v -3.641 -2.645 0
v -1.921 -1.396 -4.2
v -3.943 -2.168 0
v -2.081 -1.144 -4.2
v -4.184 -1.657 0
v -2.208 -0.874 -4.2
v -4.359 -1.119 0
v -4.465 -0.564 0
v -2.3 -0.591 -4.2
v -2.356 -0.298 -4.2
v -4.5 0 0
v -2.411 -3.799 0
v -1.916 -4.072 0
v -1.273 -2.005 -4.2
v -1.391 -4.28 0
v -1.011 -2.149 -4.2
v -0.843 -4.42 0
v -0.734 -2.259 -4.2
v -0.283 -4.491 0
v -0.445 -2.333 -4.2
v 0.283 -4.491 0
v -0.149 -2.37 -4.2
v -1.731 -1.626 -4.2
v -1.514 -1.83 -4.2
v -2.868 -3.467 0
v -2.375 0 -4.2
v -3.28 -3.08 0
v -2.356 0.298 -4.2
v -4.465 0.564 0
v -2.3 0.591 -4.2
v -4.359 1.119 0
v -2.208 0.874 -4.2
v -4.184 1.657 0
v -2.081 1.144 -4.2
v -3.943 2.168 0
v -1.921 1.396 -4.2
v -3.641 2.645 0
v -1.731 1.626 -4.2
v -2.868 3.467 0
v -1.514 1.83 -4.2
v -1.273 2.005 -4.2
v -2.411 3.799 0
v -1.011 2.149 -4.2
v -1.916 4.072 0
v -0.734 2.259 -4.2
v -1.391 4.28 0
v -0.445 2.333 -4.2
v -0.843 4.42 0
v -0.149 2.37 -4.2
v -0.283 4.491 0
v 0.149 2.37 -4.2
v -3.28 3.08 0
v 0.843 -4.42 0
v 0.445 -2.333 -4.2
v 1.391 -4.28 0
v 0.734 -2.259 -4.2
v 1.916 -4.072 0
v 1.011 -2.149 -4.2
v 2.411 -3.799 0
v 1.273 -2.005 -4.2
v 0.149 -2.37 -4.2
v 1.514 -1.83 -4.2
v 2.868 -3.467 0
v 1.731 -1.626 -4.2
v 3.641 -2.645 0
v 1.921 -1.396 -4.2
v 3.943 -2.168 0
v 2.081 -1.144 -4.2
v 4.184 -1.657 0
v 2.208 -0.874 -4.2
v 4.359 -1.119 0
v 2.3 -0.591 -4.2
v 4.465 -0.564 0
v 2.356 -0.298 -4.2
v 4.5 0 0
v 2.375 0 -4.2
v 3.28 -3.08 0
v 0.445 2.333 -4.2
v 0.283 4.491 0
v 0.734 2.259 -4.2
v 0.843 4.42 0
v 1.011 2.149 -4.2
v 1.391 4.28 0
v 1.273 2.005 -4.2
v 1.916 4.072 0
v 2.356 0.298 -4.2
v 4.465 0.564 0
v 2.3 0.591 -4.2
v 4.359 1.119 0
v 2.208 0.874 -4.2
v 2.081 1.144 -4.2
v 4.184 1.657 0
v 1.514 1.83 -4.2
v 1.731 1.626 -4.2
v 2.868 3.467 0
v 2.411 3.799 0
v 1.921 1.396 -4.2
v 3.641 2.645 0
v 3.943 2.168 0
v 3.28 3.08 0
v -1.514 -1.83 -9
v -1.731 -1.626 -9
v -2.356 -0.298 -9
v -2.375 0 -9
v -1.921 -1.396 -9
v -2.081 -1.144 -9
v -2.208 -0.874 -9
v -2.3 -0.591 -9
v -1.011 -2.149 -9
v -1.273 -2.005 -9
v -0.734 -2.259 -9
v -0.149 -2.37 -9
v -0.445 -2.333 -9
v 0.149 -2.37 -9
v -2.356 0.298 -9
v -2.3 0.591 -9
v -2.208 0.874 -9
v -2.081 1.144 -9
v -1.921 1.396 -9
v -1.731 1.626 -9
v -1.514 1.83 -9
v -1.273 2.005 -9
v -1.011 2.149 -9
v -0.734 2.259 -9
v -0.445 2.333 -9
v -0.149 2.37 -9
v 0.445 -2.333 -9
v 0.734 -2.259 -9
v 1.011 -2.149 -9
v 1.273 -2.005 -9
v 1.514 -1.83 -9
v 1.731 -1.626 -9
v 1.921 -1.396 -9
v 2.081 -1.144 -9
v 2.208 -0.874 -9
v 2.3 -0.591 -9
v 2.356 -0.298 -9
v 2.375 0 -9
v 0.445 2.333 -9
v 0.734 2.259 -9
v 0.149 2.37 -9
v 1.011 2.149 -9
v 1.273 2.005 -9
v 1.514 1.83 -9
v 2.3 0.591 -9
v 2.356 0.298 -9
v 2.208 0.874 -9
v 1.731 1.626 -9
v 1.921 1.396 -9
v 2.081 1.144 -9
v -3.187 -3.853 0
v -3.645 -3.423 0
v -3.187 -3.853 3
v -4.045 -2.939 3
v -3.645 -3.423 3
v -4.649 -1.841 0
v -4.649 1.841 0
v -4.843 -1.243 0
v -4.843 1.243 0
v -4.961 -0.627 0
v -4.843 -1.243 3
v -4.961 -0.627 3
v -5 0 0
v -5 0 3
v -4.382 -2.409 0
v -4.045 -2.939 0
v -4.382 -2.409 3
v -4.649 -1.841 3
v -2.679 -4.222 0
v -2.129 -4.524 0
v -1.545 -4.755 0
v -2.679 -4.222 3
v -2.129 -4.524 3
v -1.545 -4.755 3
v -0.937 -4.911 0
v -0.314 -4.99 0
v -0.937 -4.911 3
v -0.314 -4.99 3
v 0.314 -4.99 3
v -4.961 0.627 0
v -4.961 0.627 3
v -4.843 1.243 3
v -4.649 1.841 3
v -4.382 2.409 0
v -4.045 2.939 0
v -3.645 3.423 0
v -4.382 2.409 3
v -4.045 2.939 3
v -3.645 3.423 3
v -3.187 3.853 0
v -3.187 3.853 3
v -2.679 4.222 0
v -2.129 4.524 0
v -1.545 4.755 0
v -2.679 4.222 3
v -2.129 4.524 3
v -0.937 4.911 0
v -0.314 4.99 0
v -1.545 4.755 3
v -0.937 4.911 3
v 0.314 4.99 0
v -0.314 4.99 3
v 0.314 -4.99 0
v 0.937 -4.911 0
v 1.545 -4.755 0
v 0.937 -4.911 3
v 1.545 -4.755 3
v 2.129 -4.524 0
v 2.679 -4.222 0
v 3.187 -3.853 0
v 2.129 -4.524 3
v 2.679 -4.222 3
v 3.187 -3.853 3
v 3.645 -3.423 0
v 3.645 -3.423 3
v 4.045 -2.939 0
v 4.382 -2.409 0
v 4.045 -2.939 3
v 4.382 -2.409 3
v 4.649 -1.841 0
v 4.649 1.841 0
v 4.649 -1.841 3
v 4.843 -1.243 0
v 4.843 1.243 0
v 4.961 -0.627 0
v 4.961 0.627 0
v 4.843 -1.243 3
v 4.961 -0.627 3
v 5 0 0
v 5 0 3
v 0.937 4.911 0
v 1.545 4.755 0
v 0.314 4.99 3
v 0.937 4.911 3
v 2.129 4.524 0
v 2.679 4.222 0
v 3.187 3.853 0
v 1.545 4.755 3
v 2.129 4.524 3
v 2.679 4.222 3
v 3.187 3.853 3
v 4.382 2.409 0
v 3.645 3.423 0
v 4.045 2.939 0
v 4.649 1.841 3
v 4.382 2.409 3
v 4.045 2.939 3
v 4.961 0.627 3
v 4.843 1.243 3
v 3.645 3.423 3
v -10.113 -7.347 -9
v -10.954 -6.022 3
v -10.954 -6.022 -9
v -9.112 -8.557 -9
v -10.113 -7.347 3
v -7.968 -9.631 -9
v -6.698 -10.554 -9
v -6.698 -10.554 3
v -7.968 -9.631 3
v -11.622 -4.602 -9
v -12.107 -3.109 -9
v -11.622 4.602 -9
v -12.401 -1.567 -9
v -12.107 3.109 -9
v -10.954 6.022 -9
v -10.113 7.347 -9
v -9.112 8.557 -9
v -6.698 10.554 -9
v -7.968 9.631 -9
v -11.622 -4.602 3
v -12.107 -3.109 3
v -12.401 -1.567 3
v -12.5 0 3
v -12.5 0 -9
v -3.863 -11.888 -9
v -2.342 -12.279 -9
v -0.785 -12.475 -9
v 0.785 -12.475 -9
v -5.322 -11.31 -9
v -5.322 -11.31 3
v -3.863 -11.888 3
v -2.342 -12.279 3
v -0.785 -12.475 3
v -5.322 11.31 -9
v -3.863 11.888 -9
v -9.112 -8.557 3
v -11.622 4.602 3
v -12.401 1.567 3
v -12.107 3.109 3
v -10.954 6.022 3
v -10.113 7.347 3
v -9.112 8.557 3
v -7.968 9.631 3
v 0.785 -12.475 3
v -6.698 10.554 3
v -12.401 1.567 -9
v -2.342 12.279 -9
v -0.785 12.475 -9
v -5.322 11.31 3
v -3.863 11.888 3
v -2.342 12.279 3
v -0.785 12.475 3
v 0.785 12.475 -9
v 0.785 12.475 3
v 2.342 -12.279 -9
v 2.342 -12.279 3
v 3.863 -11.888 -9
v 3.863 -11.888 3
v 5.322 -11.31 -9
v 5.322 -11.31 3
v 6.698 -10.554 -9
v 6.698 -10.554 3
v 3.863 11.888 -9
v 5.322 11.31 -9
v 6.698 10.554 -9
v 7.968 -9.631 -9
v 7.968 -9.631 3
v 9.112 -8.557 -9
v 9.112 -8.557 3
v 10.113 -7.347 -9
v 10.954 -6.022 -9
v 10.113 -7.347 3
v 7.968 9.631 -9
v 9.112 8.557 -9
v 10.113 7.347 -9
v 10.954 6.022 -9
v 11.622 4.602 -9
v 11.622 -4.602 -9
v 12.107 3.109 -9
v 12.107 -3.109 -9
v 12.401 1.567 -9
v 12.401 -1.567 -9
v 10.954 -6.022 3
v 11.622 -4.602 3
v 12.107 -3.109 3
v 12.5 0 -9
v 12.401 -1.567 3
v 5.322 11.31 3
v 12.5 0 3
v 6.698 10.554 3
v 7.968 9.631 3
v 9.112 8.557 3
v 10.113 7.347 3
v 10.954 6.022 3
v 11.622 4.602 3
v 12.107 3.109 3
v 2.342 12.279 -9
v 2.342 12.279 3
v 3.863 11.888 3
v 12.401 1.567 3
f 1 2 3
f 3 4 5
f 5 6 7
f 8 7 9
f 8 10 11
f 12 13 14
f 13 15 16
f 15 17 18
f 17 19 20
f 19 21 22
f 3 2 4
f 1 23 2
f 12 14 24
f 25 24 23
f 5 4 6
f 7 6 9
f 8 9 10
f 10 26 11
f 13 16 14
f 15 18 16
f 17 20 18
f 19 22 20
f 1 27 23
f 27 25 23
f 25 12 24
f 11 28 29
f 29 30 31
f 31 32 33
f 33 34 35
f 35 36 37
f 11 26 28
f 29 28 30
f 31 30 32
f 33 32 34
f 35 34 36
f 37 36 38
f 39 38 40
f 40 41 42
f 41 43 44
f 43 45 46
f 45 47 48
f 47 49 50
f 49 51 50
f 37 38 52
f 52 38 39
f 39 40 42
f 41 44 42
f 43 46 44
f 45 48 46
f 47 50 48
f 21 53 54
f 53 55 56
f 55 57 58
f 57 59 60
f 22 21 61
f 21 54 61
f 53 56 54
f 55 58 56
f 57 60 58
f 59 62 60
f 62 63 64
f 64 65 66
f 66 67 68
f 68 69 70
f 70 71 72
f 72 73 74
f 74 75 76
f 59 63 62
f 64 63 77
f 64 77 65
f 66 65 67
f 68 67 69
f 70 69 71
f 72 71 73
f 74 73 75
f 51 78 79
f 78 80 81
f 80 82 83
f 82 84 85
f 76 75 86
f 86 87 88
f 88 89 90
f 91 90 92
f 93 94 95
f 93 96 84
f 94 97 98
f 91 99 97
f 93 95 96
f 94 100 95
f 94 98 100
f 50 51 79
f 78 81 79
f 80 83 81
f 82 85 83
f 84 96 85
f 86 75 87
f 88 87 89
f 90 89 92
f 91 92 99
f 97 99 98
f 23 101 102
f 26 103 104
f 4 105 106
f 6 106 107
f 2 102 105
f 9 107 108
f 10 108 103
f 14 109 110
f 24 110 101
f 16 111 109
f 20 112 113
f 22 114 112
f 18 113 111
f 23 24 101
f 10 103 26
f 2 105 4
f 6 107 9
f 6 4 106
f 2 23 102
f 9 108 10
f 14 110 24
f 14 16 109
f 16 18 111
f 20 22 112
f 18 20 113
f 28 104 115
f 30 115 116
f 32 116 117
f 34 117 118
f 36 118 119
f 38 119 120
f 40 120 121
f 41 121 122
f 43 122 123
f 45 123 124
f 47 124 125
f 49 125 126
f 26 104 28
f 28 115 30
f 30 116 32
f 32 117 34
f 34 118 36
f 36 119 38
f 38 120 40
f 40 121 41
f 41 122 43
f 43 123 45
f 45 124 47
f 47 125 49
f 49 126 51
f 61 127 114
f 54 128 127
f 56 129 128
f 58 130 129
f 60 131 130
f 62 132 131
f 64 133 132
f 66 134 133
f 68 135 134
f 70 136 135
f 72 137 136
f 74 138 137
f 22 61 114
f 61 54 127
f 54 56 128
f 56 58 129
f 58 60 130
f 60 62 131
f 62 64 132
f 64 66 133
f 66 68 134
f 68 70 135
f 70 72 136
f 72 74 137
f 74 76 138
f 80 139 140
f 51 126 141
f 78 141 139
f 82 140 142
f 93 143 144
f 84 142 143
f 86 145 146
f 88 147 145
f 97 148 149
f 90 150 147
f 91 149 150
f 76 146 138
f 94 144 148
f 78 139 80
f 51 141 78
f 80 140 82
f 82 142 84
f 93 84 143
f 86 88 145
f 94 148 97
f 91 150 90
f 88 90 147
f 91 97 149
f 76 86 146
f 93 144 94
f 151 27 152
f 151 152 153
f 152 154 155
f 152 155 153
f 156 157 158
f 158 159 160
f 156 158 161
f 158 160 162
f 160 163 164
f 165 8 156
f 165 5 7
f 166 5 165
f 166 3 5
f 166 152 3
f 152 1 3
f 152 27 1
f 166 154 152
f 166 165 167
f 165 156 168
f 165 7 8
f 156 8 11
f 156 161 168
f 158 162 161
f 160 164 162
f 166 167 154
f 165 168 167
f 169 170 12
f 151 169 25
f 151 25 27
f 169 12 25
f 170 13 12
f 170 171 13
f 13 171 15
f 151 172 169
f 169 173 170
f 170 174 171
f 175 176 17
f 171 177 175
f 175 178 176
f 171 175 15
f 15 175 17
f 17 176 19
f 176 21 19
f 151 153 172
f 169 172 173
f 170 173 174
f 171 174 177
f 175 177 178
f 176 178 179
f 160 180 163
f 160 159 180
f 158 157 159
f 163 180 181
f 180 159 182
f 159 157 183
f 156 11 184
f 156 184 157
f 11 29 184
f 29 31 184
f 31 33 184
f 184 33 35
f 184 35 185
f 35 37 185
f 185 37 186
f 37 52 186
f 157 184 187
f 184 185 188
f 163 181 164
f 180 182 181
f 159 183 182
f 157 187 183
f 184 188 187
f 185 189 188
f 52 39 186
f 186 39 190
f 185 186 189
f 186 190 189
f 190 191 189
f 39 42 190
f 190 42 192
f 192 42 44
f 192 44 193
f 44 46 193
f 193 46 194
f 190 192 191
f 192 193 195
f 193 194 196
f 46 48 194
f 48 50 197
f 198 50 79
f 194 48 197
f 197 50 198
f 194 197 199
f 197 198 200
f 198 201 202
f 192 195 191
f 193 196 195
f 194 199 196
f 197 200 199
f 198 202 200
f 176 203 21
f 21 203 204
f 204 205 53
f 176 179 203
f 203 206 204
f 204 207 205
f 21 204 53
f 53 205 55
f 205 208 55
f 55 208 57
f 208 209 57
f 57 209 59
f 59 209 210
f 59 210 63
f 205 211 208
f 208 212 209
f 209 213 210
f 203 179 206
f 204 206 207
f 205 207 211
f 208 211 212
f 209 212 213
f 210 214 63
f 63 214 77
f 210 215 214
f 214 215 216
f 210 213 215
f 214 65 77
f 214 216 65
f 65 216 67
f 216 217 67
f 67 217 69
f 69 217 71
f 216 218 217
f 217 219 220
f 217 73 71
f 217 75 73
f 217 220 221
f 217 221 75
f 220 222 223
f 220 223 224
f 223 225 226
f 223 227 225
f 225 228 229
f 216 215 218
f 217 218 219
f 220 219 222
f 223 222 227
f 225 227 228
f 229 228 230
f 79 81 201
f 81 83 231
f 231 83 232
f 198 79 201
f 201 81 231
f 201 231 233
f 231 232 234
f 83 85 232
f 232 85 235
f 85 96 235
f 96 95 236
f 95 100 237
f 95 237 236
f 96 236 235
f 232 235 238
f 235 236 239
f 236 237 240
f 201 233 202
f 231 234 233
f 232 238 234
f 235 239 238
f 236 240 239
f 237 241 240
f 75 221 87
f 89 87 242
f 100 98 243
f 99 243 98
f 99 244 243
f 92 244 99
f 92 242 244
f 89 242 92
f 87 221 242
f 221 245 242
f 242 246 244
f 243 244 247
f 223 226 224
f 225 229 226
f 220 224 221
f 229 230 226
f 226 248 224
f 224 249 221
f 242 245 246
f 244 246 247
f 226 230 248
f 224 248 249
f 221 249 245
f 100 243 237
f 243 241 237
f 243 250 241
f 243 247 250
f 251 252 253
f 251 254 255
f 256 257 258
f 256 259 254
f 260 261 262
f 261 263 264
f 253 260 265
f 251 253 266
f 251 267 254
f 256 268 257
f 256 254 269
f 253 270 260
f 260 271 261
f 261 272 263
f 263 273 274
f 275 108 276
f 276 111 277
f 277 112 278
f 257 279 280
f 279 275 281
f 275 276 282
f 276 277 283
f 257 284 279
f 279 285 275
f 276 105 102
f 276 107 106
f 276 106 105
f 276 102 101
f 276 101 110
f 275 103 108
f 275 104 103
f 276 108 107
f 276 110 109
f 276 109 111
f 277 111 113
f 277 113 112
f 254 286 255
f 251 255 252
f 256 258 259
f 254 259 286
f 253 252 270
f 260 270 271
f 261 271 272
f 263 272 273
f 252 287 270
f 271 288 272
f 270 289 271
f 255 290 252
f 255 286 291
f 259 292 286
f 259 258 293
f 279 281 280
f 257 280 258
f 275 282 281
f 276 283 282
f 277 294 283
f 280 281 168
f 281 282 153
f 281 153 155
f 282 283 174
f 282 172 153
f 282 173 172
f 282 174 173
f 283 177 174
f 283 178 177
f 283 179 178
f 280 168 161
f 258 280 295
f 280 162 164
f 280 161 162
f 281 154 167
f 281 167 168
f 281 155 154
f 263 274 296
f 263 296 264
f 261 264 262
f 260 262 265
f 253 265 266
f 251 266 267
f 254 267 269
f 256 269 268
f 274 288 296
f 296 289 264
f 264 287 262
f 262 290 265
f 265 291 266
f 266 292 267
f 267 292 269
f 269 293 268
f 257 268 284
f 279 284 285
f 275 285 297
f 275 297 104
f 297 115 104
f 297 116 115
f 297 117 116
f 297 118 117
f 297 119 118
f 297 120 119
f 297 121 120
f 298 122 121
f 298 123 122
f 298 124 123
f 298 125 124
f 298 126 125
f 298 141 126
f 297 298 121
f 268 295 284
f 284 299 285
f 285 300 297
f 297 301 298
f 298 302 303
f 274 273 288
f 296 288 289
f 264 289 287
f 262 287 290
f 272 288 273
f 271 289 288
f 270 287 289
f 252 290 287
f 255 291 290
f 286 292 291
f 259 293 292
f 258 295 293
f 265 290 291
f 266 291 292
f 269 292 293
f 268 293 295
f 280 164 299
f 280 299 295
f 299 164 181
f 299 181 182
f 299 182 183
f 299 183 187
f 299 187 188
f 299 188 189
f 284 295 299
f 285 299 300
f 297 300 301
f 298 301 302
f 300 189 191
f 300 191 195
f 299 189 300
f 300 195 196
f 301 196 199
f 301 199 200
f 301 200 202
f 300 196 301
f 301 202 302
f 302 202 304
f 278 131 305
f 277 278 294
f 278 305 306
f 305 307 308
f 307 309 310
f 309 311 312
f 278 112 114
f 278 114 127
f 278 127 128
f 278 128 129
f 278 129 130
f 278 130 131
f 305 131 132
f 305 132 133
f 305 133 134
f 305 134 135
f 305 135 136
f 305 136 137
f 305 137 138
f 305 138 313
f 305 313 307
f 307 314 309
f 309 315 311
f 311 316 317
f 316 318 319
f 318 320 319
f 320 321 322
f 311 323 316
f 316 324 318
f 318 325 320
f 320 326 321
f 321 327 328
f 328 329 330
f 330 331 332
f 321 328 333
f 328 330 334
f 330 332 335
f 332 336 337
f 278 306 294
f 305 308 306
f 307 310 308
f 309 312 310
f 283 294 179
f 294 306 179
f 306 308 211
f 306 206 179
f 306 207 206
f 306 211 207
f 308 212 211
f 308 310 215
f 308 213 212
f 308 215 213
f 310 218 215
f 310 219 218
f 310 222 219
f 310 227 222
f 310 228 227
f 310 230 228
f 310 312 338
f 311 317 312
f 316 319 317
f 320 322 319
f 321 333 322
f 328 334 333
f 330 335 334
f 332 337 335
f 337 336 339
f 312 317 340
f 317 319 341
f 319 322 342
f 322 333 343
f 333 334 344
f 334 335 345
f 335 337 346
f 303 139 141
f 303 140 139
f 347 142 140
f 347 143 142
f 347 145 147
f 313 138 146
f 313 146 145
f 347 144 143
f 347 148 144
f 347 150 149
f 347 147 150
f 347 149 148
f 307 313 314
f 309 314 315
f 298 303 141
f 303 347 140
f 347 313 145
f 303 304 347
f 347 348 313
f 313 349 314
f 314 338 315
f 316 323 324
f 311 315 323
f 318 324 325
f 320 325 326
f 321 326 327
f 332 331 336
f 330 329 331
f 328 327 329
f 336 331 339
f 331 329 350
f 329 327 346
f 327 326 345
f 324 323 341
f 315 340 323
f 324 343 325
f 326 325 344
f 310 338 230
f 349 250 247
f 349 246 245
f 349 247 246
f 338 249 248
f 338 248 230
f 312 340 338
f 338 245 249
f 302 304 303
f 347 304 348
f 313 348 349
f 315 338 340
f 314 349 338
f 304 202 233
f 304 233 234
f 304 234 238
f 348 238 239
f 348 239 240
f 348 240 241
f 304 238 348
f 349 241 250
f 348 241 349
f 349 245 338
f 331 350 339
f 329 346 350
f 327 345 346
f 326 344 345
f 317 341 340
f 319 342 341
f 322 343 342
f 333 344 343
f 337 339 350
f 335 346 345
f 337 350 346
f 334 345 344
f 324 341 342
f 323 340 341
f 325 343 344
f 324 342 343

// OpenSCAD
$fn = 50;

difference() {
	union() {
		translate(v = [0, 0, -9.0]) {
			cylinder(h = 12, r = 12.5);
		}
	}
	union() {
		translate(v = [0, 0, 0]) {
			rotate(a = [0, 0, 0]) {
				difference() {
					union() {
						translate(v = [0, 0, -12.0]) {
							cylinder(h = 12, r = 2.25);
						}
						translate(v = [0, 0, -4.2]) {
							cylinder(h = 4.2, r1 = 2.375, r2 = 4.5);
						}
						translate(v = [0, 0, -12.0]) {
							cylinder(h = 12, r = 2.375);
						}
						translate(v = [0, 0, -12.0]) {
							cylinder(h = 12, r = 2.25);
						}
					}
					union();
				}
			}
		}
		#cylinder(h = 3, r = 5.0);
	}
}
